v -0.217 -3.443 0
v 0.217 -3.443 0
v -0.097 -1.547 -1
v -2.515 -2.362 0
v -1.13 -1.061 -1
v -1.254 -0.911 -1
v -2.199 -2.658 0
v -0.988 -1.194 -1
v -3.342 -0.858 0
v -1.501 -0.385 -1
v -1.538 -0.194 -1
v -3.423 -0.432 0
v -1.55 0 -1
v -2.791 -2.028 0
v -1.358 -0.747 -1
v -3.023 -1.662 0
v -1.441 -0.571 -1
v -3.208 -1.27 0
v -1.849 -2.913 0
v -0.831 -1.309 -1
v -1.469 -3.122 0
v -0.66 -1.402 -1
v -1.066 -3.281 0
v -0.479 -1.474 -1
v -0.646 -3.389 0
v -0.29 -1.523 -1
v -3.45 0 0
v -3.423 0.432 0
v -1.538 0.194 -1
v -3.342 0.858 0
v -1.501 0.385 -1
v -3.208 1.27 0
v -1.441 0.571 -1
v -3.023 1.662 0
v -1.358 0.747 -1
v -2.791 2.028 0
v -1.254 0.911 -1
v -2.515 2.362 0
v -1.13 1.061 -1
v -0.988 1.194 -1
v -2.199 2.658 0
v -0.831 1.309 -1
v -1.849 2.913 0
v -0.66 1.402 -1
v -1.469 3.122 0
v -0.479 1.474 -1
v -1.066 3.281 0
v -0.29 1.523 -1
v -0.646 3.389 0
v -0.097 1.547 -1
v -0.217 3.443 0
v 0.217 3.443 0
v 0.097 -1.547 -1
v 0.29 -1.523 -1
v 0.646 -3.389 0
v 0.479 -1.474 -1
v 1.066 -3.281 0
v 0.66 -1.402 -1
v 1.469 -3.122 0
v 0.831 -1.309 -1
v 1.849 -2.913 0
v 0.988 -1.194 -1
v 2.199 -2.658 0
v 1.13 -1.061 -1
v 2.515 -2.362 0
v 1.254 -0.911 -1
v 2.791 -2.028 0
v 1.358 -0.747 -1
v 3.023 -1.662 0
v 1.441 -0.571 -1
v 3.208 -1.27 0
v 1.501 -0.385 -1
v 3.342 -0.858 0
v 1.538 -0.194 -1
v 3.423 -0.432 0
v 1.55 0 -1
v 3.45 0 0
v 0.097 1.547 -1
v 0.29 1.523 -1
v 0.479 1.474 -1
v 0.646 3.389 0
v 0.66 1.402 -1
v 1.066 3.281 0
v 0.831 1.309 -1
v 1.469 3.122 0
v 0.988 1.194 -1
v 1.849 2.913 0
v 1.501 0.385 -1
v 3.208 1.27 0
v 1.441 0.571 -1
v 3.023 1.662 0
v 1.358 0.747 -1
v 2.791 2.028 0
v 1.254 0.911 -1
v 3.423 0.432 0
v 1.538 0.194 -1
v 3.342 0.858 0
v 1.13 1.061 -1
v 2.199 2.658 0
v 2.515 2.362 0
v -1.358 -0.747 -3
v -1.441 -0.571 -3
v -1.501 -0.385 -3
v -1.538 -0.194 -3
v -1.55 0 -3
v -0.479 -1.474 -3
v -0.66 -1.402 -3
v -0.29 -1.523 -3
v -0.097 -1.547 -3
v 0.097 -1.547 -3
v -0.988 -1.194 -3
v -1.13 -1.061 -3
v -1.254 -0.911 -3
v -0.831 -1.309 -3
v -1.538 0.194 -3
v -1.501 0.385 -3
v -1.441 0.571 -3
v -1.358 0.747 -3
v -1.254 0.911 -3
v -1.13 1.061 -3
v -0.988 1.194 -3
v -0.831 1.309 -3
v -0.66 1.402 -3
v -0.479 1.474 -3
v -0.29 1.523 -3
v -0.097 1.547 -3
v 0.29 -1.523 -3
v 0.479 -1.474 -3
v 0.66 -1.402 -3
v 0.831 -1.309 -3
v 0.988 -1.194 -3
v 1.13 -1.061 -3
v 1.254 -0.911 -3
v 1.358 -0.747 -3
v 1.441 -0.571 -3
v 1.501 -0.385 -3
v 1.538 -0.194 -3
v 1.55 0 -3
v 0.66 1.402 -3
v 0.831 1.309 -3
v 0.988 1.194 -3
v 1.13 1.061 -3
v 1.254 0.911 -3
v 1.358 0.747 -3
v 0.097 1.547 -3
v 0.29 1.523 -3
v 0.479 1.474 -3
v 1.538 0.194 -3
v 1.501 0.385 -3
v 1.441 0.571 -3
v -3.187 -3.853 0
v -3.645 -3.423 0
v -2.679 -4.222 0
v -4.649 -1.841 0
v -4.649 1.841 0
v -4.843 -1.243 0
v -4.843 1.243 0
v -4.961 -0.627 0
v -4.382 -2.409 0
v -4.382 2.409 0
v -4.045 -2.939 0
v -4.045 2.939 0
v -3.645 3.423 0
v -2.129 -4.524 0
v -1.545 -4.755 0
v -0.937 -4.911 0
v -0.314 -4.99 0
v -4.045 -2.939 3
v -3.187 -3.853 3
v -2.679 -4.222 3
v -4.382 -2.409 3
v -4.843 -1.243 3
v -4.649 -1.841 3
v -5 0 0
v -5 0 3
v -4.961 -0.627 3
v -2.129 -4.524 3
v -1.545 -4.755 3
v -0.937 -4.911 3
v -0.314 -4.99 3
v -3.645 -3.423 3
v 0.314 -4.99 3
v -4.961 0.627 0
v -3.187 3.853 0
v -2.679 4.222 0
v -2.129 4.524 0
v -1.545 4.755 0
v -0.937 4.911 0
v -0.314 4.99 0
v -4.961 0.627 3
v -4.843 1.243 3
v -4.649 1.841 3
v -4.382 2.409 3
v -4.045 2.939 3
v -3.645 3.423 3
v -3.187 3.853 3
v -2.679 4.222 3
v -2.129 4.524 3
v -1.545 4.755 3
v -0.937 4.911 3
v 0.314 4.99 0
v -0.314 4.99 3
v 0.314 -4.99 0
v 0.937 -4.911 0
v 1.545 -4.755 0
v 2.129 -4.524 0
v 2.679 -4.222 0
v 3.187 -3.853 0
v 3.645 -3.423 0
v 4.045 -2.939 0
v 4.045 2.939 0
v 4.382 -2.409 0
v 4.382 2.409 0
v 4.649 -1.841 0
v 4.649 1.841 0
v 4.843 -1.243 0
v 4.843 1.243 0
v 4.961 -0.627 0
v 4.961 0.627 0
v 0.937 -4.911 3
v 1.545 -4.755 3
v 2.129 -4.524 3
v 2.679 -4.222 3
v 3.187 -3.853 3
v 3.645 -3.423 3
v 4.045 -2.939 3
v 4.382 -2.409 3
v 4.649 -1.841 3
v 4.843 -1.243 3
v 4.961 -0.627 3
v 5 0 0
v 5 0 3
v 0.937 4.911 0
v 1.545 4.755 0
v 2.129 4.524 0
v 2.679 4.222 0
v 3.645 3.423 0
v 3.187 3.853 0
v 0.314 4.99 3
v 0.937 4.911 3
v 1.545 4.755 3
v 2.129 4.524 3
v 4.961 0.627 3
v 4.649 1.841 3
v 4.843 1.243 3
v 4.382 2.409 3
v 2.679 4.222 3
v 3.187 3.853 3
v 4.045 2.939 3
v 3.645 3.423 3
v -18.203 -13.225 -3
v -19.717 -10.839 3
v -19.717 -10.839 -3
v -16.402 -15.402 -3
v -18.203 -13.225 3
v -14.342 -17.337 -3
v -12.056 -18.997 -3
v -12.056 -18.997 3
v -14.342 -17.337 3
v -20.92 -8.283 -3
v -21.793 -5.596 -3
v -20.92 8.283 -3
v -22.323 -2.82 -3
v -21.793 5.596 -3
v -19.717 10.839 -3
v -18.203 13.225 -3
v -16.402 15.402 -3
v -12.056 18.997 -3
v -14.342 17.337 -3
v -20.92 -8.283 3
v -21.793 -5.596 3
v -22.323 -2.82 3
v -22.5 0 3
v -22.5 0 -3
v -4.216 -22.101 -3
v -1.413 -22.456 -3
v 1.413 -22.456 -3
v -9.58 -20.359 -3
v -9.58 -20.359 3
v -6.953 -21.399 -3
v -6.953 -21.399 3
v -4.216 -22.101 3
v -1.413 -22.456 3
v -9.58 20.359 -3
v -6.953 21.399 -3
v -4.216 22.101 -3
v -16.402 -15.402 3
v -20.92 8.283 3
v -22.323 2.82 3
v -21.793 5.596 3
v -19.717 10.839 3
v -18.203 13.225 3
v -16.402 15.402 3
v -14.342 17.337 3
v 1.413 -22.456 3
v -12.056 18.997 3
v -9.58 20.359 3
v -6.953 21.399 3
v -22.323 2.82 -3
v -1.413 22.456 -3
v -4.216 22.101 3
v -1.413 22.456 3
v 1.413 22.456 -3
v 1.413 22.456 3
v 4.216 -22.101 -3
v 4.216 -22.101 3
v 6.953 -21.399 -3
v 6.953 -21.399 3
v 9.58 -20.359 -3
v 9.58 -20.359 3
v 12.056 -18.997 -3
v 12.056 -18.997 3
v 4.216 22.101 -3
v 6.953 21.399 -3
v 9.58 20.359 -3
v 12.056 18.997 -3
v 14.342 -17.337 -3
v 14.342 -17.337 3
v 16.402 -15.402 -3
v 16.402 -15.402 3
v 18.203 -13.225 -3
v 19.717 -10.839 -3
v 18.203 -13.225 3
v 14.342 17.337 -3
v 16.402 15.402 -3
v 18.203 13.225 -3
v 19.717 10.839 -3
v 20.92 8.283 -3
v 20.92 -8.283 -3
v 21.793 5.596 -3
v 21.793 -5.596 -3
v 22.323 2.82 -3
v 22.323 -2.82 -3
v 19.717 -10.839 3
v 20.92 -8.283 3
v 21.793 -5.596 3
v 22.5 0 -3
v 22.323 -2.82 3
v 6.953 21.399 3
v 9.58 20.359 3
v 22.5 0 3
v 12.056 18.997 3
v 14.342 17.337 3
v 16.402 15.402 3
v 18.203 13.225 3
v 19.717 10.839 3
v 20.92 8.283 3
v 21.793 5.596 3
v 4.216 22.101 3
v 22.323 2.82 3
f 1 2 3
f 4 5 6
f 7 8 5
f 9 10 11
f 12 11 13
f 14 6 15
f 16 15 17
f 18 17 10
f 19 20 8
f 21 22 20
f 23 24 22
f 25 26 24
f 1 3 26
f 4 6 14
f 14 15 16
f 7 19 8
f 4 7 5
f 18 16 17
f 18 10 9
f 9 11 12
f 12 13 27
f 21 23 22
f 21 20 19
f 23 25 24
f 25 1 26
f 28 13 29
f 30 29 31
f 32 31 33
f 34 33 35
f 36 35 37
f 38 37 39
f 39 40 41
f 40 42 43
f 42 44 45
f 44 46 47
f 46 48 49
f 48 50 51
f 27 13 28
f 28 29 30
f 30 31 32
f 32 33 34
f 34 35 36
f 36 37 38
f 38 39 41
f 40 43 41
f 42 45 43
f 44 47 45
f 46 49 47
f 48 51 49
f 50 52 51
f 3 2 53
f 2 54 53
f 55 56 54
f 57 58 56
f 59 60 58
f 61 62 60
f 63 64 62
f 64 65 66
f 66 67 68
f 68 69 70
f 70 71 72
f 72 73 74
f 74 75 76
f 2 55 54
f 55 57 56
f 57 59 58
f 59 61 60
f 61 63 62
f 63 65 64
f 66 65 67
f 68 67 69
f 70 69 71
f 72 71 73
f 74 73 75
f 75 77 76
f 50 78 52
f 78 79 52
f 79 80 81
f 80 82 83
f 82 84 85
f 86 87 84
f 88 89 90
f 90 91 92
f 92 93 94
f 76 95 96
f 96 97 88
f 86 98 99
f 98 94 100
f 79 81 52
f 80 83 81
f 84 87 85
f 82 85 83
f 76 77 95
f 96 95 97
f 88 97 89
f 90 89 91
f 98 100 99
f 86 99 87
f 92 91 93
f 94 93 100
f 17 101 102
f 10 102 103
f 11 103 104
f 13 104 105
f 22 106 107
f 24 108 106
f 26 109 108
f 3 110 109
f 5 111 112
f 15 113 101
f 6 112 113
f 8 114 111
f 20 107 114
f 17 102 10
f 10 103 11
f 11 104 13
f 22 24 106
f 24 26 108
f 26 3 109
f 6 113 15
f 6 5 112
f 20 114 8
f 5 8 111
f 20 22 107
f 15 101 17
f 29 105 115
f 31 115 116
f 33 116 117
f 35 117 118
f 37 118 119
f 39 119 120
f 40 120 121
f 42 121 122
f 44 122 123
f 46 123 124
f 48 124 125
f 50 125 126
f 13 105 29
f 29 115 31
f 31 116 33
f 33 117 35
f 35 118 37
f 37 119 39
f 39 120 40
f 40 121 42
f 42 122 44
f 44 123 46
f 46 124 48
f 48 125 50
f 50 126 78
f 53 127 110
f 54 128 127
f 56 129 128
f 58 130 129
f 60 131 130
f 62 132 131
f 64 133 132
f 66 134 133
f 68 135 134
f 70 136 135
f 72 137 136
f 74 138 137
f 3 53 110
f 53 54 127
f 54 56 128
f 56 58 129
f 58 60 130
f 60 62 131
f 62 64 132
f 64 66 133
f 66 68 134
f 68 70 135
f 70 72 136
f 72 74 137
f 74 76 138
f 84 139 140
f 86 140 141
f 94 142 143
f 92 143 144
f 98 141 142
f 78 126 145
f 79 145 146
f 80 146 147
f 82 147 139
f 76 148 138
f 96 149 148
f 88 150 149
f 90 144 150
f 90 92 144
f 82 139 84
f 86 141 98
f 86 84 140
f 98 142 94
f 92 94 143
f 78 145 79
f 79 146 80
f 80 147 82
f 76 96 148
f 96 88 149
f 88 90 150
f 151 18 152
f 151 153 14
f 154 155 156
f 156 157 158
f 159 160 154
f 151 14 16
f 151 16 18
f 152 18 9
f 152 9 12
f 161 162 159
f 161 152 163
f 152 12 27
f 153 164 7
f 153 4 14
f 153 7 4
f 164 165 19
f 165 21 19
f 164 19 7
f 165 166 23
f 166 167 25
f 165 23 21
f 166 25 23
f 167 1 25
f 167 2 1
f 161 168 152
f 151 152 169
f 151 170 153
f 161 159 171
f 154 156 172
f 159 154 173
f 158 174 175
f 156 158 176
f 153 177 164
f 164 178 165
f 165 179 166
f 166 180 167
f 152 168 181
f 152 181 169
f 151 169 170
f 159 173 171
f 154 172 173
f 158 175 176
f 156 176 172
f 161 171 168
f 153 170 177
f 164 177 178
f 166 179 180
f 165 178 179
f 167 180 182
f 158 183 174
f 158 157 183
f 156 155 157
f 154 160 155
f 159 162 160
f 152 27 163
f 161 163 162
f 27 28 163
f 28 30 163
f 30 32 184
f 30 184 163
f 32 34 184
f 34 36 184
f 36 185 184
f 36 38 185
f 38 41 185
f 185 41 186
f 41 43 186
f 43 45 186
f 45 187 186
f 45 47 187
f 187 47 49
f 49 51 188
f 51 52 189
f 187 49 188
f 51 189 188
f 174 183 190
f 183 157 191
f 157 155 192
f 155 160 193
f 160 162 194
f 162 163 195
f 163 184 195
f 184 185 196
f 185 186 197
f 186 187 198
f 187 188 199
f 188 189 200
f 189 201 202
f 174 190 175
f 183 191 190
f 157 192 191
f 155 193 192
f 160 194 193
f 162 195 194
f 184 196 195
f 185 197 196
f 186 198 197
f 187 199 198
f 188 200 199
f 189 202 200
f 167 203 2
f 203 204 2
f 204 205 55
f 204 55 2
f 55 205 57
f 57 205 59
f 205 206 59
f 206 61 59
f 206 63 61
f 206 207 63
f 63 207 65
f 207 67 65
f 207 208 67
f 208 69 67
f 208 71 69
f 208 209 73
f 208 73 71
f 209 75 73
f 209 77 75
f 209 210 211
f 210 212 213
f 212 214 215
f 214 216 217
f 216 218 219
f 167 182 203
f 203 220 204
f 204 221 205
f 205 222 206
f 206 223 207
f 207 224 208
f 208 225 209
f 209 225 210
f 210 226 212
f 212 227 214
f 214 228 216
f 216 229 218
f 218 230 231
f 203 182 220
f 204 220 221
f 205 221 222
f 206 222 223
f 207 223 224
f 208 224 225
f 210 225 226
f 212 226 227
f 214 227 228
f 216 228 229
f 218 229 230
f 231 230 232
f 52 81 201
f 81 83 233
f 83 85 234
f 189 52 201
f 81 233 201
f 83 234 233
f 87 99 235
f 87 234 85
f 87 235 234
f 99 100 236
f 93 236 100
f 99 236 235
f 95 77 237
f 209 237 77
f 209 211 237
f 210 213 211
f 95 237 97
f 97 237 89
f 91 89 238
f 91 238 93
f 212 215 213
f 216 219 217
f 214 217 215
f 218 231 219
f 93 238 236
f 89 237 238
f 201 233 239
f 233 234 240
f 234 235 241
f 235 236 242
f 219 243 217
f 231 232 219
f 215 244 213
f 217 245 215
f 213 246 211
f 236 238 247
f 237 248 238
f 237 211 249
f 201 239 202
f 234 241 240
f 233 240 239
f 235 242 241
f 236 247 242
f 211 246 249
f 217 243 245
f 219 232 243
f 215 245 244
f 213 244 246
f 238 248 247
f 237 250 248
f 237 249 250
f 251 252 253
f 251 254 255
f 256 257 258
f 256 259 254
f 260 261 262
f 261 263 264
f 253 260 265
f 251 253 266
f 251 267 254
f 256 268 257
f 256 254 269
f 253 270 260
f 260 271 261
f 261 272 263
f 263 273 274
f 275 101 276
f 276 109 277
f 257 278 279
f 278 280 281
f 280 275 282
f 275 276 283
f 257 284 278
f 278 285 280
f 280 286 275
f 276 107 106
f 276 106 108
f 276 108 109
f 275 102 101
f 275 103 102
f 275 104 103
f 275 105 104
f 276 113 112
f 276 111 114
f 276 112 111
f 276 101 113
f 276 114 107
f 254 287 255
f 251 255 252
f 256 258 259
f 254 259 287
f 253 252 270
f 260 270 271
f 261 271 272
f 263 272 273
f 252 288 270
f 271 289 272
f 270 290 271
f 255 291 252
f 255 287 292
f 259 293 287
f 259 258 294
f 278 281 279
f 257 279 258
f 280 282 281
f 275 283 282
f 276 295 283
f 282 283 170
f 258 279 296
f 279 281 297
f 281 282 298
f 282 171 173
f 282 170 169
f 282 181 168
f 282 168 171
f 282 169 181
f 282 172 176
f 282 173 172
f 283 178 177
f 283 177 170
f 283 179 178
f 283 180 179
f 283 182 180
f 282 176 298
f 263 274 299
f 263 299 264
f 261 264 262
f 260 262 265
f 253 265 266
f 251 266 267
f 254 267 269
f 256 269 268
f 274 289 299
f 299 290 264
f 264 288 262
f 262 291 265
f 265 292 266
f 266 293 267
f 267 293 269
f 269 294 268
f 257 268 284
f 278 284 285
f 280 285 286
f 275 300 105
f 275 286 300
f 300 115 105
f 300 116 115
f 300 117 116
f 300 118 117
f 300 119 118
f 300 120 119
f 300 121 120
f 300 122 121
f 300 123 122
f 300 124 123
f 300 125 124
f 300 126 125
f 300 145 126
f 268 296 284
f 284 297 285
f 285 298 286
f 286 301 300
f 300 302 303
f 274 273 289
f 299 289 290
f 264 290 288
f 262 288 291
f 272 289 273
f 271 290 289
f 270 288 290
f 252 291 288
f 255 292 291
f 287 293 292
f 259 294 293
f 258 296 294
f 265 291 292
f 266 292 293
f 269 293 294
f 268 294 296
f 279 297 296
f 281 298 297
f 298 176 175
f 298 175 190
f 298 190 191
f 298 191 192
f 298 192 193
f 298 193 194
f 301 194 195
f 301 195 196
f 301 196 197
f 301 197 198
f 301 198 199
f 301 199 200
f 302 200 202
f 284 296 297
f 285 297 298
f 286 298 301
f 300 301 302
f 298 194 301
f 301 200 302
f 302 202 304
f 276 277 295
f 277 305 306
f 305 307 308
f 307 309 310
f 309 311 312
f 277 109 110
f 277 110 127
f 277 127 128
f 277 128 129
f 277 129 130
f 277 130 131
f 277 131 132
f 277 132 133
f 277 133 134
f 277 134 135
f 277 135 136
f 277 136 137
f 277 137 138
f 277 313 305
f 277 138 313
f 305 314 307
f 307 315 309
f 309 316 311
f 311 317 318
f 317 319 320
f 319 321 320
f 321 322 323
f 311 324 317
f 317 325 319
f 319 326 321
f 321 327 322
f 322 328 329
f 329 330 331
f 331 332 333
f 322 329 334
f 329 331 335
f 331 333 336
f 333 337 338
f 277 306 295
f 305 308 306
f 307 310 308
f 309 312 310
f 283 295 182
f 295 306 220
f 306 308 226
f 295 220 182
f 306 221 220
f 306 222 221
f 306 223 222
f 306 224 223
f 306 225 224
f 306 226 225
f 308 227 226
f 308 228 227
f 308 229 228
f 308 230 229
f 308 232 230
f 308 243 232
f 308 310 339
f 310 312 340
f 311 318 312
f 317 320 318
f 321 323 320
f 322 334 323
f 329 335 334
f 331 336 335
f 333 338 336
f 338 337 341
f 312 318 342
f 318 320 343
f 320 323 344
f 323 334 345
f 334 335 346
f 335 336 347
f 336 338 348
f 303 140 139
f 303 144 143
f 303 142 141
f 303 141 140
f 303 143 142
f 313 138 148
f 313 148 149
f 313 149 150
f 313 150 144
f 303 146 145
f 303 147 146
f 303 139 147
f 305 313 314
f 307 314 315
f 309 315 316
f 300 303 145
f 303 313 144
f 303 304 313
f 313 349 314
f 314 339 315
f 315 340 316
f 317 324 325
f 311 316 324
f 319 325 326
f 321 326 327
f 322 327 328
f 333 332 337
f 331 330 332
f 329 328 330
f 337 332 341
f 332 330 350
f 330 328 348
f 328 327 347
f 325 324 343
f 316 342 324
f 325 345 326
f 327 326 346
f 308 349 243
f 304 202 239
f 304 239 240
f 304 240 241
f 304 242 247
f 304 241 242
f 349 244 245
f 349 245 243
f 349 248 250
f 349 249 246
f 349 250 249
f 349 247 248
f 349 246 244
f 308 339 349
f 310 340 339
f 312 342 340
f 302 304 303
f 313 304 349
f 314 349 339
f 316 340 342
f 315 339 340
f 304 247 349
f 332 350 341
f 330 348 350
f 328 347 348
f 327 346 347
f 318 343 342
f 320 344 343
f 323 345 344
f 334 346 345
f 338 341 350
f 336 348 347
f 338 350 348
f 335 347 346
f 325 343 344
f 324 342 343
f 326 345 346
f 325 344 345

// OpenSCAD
$fn = 50;


difference() {
	union() {
		translate(v = [0, 0, -3.0000000000]) {
			cylinder(h = 6, r = 22.5000000000);
		}
	}
	union() {
		translate(v = [0, 0, 0]) {
			rotate(a = [0, 0, 0]) {
				difference() {
					union() {
						translate(v = [0, 0, -6.0000000000]) {
							cylinder(h = 6, r = 1.2500000000);
						}
						translate(v = [0, 0, -1.0000000000]) {
							cylinder(h = 1.0000000000, r1 = 1.5500000000, r2 = 3.4500000000);
						}
						translate(v = [0, 0, -6.0000000000]) {
							cylinder(h = 6, r = 1.5500000000);
						}
						translate(v = [0, 0, -6.0000000000]) {
							cylinder(h = 6, r = 1.2500000000);
						}
					}
					union();
				}
			}
		}
		#cylinder(h = 3, r = 5.0000000000);
	}
}
